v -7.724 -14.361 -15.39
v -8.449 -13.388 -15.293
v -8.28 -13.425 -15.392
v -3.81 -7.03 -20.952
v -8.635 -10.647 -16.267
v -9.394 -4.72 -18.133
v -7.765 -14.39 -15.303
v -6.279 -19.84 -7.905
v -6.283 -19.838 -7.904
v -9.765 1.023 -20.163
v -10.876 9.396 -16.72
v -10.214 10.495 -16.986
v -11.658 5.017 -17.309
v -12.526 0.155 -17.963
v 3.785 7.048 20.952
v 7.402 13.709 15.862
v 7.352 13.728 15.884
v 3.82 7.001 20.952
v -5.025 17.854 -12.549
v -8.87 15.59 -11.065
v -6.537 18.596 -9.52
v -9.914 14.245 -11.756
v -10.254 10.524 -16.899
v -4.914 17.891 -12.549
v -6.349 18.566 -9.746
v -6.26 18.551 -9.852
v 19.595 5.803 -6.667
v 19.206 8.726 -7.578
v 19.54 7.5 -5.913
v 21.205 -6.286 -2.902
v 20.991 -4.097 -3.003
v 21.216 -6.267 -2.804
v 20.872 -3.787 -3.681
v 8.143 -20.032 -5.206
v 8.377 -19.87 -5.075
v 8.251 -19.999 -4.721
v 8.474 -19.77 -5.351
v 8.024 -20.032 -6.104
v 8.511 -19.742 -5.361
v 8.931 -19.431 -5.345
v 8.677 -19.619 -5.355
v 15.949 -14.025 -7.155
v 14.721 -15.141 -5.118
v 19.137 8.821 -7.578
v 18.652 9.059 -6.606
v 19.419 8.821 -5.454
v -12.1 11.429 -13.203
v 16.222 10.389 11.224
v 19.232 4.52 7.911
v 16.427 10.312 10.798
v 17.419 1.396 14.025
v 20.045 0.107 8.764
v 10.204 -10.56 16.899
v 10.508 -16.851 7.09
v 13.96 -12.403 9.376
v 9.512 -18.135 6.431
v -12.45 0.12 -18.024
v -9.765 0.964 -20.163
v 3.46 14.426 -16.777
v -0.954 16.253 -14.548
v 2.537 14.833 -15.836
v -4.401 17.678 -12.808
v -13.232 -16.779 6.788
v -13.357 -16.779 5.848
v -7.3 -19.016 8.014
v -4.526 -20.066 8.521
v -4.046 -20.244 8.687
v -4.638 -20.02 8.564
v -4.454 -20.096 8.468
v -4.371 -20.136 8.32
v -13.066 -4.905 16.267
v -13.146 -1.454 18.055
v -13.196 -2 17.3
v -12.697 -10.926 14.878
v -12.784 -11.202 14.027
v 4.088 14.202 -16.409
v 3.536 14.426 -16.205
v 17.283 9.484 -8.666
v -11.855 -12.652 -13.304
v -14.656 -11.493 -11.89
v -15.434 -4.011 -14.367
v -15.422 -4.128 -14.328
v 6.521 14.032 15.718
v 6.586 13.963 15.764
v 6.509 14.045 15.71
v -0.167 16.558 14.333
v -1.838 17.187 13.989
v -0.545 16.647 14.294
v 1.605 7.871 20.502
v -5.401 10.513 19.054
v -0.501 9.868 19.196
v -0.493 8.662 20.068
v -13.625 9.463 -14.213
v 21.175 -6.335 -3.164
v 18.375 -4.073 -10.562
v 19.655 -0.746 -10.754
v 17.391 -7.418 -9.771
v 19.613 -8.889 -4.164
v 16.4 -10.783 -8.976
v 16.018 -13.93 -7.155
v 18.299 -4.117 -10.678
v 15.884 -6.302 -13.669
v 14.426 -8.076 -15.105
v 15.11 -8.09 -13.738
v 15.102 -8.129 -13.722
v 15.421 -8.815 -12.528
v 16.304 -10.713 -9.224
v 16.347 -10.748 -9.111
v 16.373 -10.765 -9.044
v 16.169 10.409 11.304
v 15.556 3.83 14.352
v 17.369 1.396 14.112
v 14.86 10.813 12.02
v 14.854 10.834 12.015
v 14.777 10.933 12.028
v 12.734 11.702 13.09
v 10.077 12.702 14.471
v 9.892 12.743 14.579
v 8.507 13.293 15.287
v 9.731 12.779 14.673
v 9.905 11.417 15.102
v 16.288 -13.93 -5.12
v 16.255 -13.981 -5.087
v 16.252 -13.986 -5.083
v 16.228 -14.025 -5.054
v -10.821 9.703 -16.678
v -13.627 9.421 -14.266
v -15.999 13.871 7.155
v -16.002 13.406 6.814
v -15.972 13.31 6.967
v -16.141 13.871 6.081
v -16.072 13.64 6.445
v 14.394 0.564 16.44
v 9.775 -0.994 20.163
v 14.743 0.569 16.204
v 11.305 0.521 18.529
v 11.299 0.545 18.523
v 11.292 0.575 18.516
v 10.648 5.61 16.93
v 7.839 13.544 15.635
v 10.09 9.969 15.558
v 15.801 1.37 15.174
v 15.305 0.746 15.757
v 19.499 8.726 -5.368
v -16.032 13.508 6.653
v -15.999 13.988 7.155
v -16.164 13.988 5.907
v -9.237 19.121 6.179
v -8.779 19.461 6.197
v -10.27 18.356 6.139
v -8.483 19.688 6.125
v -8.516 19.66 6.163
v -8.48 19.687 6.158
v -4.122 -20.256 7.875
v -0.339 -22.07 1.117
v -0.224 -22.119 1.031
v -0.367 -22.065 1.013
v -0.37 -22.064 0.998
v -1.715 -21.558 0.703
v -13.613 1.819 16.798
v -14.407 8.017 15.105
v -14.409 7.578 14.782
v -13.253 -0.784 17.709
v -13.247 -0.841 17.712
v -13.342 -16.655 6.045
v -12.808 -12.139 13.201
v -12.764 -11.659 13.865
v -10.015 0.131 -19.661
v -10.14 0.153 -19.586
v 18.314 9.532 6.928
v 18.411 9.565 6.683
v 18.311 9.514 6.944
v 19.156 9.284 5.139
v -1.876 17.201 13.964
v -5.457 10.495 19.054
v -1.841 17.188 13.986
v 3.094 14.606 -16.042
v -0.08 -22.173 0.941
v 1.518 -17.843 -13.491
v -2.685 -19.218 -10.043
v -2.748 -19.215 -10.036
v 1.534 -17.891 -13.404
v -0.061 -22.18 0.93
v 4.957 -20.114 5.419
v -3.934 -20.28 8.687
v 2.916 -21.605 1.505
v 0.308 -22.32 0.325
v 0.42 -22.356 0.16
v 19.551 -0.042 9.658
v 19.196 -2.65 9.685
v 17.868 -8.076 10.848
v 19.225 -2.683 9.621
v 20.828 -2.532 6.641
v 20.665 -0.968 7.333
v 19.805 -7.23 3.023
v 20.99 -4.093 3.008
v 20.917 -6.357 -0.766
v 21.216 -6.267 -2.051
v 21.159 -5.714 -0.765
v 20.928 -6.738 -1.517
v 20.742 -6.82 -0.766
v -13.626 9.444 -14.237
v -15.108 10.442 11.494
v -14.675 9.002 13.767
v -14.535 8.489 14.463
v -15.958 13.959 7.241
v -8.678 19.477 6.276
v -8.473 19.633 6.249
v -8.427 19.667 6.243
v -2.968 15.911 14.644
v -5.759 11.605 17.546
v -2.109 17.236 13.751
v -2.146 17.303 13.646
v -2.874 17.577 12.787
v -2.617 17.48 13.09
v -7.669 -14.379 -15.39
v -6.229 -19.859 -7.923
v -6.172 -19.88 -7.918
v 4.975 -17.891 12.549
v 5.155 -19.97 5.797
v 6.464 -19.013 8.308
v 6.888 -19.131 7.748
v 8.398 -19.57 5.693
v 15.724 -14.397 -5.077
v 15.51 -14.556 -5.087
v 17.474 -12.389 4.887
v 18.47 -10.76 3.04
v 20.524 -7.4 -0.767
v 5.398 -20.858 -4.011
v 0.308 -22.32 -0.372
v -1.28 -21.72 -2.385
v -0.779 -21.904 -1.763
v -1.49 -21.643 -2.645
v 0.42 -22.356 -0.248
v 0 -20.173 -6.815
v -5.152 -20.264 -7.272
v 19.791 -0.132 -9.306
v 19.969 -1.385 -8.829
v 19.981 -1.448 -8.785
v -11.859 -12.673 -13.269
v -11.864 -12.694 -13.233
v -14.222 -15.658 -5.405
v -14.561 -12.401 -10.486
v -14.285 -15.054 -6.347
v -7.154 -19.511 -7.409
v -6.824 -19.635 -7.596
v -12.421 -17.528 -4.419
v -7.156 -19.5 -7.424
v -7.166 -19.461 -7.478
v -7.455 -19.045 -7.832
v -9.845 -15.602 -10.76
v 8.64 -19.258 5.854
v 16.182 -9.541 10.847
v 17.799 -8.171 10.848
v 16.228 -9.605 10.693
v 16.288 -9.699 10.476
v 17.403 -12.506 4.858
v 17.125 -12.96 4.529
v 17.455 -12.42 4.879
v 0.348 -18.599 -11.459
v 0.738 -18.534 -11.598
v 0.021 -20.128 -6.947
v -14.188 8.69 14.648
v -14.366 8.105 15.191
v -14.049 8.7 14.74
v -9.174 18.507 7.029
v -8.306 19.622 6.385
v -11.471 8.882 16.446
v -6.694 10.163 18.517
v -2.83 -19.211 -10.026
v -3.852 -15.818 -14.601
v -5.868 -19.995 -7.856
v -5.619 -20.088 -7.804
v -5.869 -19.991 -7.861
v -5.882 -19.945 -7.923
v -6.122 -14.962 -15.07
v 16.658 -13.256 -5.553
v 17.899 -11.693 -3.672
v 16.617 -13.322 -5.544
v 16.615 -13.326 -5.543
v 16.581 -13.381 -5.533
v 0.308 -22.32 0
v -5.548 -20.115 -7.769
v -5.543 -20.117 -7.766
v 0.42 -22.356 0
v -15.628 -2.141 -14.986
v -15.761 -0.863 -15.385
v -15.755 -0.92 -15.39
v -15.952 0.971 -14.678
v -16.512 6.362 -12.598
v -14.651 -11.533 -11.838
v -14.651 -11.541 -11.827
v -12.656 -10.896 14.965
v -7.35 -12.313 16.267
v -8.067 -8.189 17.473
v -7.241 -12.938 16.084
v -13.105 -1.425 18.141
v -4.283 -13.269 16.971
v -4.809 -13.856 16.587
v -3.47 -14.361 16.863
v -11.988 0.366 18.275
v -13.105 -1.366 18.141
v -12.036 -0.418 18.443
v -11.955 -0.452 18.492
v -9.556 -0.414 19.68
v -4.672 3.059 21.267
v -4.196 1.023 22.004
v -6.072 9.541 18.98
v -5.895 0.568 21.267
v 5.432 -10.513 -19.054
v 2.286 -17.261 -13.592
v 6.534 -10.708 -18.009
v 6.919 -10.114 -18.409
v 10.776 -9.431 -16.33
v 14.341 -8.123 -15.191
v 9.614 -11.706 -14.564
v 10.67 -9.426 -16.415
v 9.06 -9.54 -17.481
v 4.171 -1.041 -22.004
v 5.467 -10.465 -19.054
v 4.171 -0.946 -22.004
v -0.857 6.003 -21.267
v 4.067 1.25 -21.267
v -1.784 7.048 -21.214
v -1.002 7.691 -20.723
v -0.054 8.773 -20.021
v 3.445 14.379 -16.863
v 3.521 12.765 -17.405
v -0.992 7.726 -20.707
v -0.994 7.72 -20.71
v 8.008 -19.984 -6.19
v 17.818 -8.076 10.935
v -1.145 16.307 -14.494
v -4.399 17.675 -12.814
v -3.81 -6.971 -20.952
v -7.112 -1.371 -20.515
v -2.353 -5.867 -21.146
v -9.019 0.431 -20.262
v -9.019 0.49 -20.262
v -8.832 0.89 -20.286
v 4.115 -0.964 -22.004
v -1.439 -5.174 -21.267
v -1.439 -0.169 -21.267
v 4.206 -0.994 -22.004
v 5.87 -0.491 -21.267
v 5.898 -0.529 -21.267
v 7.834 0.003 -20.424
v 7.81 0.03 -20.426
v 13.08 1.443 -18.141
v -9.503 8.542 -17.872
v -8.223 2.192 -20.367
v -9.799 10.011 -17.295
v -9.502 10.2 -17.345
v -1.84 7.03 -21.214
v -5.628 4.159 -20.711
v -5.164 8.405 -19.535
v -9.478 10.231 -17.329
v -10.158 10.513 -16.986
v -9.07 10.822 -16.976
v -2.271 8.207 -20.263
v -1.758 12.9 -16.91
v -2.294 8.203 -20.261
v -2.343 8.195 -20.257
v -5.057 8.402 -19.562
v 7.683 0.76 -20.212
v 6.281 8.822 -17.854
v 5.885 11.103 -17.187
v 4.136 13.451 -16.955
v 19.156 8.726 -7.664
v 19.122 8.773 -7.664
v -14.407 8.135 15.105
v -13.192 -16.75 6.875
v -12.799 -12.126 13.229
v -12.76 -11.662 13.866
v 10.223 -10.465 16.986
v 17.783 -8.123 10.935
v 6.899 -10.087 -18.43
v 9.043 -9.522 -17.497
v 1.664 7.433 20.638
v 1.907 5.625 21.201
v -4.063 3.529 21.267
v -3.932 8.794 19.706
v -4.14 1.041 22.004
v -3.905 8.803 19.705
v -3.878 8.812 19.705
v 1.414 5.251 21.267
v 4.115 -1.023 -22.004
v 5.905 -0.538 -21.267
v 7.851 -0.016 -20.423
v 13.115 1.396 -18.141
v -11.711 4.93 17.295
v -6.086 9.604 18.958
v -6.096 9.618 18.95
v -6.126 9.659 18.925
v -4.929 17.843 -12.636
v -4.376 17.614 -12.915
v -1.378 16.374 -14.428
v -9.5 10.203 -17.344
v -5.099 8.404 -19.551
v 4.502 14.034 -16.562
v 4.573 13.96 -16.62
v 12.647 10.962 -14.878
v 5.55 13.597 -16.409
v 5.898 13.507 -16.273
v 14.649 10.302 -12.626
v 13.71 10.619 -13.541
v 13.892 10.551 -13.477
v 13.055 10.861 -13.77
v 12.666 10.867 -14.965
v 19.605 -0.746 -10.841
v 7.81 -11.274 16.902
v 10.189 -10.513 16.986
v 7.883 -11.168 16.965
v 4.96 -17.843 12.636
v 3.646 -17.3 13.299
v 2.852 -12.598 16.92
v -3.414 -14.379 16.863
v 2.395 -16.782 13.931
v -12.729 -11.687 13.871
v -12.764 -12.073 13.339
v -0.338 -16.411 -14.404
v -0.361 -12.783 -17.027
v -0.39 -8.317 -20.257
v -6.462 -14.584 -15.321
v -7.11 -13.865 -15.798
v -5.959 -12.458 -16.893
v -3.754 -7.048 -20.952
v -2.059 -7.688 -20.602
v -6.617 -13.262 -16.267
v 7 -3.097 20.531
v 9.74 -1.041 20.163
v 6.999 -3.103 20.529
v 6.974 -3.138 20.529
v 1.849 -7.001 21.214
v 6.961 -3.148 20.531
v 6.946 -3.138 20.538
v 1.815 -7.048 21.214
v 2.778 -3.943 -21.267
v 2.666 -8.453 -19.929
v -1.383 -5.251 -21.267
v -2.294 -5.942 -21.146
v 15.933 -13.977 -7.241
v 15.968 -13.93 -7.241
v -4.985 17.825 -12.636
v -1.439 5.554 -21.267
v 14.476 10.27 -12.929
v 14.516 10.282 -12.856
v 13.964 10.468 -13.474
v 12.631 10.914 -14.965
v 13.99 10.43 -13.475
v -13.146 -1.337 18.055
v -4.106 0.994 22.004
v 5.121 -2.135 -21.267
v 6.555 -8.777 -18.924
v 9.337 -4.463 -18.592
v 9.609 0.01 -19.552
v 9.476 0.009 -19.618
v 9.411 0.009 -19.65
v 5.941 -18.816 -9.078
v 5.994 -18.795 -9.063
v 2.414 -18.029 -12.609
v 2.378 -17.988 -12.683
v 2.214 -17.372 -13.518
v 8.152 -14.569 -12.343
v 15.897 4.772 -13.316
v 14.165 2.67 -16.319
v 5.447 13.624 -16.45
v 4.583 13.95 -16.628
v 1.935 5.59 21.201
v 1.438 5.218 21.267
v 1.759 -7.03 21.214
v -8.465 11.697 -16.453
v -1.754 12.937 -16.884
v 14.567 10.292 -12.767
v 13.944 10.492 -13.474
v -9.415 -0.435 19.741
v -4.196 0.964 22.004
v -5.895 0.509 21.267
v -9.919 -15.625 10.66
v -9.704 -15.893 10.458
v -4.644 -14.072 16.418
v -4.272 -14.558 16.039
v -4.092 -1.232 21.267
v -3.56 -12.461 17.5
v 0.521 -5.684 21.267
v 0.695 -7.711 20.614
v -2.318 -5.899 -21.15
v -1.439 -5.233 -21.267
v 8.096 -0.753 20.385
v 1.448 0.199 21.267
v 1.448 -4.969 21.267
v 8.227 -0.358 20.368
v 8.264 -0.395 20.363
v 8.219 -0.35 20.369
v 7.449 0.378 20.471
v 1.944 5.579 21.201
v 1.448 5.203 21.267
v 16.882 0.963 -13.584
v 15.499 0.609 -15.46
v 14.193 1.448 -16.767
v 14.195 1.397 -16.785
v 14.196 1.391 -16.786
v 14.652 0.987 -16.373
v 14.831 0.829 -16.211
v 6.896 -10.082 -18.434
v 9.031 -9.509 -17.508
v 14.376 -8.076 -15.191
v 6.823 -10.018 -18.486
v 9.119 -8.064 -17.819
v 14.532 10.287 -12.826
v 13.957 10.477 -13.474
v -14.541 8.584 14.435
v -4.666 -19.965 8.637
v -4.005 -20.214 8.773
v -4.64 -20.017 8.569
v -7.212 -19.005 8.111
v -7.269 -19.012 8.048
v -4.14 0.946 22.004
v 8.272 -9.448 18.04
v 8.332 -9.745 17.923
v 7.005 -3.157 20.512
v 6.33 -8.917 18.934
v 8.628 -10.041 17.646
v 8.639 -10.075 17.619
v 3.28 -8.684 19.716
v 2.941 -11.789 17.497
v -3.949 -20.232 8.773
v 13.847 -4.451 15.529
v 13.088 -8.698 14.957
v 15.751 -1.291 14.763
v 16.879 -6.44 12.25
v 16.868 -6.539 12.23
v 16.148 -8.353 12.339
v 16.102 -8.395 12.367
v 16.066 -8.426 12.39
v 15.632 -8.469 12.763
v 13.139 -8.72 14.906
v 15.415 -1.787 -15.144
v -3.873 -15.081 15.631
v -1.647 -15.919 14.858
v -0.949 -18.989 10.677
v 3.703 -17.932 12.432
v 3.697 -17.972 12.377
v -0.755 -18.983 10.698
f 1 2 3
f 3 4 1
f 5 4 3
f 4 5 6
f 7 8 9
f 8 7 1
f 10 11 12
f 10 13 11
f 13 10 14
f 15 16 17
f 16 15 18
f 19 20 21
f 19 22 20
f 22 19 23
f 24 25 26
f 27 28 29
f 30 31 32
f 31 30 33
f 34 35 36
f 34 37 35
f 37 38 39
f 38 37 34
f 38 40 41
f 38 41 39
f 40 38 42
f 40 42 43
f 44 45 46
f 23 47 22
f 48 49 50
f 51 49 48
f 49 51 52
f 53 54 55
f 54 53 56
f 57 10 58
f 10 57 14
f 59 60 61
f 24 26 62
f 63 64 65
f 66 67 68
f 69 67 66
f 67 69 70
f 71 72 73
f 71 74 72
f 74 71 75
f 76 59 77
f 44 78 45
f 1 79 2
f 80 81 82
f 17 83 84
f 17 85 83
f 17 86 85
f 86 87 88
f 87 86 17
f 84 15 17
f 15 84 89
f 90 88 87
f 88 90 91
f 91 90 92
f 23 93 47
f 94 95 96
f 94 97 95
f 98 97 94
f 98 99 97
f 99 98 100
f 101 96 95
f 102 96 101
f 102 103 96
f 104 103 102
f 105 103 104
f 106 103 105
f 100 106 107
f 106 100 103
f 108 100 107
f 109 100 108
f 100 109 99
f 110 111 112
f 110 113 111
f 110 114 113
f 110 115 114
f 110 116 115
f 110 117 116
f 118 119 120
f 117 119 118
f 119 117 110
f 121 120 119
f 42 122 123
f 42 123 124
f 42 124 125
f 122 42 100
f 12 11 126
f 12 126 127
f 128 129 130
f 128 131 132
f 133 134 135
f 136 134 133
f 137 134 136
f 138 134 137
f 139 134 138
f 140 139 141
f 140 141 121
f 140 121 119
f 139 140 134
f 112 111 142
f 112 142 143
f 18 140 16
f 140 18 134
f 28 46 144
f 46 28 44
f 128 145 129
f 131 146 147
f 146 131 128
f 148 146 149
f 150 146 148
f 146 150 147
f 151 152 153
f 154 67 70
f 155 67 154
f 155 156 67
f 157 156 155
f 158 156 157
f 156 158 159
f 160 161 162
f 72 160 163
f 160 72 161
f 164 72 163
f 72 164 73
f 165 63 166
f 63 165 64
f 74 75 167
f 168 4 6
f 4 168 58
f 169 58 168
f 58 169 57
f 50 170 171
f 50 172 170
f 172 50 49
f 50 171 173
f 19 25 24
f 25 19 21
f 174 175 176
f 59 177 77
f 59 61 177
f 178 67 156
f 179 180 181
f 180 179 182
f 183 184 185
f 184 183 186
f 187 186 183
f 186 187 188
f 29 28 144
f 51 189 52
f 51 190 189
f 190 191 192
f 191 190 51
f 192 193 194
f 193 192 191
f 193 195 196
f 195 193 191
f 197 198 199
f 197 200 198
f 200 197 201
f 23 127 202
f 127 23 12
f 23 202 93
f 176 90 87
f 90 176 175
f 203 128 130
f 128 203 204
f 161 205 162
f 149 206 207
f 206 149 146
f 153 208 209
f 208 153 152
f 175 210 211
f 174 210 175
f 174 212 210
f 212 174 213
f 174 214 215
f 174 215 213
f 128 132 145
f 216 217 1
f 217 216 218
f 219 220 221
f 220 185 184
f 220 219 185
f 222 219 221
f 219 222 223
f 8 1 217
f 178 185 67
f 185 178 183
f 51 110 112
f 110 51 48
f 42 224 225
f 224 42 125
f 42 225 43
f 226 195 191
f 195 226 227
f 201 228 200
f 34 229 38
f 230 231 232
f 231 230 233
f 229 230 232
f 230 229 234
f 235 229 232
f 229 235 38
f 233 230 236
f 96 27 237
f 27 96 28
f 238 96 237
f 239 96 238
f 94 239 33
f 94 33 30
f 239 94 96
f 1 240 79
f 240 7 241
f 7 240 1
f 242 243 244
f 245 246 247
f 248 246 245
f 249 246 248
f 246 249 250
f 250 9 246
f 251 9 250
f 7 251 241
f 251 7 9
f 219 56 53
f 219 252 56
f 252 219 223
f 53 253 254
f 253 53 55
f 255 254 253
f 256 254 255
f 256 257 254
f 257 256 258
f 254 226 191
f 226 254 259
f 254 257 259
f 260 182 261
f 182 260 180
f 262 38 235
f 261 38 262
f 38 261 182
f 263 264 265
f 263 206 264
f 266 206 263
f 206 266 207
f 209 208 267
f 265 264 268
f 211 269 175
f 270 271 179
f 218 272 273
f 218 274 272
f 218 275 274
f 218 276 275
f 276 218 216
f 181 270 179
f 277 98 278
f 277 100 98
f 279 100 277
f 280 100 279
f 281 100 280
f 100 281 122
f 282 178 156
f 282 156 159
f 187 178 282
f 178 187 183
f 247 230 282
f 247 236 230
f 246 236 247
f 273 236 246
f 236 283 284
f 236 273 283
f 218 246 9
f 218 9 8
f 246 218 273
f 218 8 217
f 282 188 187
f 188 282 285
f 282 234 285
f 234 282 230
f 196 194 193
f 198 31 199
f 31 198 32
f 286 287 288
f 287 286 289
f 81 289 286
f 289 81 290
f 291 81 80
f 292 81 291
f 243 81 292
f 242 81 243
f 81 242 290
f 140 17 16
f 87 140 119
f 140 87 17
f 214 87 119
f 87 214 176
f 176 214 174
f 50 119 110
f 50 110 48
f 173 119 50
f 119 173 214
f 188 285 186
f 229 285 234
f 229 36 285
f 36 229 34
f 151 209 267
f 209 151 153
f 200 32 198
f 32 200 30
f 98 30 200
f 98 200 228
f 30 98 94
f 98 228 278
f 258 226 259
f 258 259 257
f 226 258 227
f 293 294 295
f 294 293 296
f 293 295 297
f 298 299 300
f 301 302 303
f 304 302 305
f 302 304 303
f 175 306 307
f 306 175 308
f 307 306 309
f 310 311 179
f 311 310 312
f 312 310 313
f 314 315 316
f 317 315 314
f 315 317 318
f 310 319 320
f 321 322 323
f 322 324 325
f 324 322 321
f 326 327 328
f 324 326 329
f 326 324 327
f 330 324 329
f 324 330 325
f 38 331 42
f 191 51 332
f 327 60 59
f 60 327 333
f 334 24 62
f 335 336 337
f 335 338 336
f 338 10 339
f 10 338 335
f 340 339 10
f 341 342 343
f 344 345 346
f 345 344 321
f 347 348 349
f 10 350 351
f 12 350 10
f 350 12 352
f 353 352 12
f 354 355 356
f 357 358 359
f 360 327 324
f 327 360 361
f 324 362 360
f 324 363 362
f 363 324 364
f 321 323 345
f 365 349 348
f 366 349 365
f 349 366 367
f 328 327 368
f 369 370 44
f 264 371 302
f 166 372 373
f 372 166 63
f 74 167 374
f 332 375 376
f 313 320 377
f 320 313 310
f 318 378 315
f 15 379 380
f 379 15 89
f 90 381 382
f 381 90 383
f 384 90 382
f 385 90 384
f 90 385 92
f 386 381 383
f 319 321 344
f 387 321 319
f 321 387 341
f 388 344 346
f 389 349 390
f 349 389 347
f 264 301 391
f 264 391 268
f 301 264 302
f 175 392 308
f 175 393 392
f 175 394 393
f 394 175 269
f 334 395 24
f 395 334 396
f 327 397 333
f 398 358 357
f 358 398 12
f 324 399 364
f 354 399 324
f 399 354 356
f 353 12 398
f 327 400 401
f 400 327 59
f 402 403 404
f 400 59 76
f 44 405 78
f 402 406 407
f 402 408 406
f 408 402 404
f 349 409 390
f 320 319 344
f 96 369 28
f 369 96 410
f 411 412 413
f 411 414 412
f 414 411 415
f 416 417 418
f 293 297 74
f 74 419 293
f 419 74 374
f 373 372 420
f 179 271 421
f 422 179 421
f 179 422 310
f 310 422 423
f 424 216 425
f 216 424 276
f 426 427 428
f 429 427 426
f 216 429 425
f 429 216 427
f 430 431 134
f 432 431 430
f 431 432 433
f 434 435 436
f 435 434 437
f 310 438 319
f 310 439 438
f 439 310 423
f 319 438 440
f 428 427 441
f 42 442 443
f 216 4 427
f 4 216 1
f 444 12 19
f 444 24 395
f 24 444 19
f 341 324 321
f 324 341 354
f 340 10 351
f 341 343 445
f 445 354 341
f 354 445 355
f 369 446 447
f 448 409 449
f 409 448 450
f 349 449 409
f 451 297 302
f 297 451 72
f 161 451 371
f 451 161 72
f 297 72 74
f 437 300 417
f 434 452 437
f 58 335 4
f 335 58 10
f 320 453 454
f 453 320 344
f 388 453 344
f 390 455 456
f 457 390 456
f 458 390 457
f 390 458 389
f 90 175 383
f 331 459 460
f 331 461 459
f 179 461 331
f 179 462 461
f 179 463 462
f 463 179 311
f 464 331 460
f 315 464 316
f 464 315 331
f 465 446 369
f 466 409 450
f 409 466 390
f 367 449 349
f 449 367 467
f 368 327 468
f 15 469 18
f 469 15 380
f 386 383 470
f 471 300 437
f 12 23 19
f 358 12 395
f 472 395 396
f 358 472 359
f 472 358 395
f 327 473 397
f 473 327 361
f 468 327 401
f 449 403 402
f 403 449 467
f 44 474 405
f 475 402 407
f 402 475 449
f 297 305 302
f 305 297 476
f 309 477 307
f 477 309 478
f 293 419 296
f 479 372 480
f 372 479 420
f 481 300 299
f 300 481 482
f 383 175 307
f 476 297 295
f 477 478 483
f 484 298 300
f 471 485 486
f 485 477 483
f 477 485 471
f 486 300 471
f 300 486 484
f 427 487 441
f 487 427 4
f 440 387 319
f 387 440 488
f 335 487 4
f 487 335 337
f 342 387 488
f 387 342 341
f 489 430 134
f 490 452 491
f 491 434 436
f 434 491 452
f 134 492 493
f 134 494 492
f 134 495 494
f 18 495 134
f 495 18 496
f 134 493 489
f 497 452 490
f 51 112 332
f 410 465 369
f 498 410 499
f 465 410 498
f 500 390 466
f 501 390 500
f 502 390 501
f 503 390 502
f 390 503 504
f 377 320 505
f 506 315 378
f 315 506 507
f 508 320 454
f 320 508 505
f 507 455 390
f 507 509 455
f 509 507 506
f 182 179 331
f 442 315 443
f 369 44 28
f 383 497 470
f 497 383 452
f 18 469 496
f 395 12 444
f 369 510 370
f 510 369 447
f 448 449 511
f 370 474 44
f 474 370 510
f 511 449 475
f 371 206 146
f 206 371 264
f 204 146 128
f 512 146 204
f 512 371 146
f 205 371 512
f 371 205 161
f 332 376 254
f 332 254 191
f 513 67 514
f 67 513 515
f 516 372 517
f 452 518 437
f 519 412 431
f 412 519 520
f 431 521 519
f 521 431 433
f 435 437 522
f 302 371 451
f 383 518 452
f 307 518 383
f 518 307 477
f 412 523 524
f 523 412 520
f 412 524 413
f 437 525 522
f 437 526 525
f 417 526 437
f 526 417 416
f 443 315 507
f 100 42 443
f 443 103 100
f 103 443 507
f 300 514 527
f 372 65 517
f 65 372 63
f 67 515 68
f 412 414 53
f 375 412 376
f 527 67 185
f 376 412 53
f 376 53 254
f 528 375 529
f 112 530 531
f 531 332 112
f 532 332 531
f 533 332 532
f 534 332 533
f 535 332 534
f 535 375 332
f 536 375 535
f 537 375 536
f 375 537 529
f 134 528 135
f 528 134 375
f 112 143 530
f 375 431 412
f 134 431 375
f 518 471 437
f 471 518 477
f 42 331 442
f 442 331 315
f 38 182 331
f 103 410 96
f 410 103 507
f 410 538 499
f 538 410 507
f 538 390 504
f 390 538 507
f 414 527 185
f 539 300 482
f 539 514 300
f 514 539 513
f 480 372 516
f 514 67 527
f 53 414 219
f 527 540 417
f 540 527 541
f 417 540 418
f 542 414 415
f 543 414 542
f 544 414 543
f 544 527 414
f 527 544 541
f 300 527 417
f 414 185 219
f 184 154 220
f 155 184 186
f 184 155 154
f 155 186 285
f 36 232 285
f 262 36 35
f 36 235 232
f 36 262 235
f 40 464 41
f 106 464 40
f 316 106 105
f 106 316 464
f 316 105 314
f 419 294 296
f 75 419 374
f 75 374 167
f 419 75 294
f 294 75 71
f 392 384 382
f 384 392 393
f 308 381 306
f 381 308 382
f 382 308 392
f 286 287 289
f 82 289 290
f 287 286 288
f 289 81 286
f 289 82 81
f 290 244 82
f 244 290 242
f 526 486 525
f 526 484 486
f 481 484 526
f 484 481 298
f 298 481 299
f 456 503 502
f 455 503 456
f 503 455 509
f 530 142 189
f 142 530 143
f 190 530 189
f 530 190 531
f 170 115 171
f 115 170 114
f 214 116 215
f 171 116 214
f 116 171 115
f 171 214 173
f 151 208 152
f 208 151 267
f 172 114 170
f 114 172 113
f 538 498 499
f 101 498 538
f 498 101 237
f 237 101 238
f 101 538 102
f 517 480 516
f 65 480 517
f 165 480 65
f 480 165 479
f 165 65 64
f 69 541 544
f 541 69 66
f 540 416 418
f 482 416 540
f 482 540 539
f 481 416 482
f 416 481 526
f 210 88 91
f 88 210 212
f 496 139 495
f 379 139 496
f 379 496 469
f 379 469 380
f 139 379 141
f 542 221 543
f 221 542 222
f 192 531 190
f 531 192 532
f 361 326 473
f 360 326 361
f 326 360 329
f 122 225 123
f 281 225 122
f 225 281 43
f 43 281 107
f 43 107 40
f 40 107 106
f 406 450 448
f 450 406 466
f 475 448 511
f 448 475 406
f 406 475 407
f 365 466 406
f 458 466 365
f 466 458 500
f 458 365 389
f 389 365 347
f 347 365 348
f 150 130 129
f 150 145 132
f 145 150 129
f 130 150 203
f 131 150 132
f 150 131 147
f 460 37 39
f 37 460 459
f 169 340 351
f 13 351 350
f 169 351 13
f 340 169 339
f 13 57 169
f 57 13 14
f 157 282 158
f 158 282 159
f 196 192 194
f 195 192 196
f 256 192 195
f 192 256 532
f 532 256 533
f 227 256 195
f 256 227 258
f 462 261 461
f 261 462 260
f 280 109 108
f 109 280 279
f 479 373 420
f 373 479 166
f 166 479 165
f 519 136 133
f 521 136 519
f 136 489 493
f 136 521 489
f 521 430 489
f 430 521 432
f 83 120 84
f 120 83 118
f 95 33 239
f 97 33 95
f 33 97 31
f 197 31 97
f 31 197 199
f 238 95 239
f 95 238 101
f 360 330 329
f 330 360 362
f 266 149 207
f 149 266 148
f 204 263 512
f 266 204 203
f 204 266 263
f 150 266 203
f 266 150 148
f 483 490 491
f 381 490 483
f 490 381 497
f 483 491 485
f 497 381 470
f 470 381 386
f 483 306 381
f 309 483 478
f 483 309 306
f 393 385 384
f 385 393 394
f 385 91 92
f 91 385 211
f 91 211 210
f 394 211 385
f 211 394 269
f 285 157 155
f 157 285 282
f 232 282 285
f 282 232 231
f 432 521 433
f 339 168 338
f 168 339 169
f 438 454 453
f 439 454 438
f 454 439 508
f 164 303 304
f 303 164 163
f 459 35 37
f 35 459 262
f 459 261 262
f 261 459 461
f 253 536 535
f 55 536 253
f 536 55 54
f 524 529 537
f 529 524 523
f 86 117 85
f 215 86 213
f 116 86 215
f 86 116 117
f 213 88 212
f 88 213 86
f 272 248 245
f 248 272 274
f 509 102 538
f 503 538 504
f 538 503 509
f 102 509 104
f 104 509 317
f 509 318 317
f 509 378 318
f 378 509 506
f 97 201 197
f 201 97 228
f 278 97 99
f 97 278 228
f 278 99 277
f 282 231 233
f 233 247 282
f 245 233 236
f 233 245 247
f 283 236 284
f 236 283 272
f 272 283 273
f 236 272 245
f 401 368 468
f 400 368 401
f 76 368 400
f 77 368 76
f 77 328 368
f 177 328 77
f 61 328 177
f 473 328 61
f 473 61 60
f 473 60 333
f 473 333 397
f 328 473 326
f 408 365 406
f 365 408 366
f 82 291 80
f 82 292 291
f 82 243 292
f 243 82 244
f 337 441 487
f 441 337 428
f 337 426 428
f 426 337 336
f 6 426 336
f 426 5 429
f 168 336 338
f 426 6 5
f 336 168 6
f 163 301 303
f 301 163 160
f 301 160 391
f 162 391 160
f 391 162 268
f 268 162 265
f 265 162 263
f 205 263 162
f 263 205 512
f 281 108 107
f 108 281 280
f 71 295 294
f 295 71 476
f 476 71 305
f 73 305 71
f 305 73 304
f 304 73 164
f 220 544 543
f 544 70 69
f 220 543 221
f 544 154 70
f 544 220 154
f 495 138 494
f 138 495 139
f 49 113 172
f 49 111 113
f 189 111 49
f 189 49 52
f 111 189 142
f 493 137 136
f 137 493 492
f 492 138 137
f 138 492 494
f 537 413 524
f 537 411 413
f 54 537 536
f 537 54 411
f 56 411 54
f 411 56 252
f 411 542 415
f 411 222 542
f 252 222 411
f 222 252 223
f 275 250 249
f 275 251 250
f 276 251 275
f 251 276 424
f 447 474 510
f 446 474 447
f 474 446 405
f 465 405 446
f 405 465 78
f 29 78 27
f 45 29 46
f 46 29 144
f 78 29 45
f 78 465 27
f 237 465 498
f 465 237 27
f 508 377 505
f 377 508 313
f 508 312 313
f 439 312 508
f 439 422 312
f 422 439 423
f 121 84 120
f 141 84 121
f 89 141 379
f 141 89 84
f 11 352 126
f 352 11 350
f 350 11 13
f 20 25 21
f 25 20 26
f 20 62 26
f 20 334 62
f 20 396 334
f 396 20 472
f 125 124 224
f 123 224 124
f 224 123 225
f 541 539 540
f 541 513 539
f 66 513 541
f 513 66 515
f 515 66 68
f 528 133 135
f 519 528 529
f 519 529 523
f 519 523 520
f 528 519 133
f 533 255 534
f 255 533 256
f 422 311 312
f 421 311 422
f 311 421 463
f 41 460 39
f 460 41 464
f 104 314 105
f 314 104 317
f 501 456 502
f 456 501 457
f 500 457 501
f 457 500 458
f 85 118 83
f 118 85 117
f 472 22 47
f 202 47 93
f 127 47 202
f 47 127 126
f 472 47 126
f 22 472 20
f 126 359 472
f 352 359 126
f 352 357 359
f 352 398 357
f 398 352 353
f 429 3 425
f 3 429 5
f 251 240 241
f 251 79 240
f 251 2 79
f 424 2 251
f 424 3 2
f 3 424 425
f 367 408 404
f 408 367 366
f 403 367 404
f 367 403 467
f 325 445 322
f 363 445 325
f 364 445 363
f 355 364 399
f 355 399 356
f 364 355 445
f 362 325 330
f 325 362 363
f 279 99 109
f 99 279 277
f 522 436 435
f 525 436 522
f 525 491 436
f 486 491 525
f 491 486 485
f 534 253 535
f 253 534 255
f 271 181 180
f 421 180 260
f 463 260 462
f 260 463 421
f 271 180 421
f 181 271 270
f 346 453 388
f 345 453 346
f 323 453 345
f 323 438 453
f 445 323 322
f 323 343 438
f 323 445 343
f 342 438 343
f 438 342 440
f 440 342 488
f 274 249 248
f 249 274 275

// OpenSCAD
// Auto-generated OpenSCAD file

    inner_points = 10*[[-0.9279033340044873, 1.9881287339373244, 0.5], [1.6599232743581653, -1.3655894049421804, 0.5000000000000002], [-1.719608792154131, 1.3772257403810124, 0.49999999999999983], [0.8682178162085216, -1.9764923984984926, 0.5], [-0.9279033340044872, 1.9881287339373246, -0.5], [1.6599232743581653, -1.3655894049421804, -0.49999999999999983], [-1.719608792154131, 1.3772257403810124, -0.5000000000000002], [0.8682178162085217, -1.9764923984984923, -0.5], [0.06055847339868262, 0.7071223935723936, 2.118033988749895], [0.6714614669549944, -0.08458306457724996, 2.118033988749895], [-0.7311469847509608, 0.0962194000160817, 2.118033988749895], [-0.1202439911946491, -0.6954860581335618, 2.118033988749895], [0.060558473398683345, 0.7071223935723938, -2.118033988749895], [0.6714614669549952, -0.08458306457724962, -2.118033988749895], [-0.7311469847509601, 0.09621940001608204, -2.118033988749895], [-0.12024399119464838, -0.6954860581335616, -2.118033988749895], [1.9524678073199255, 0.9038787428259204, 0.5000000000000004], [-1.4012503315595792, -1.6839478655367321, 0.49999999999999967], [1.9524678073199255, 0.9038787428259204, -0.4999999999999996], [-1.4012503315595792, -1.6839478655367321, -0.5000000000000003], [2.1116470376172014, -0.6267080601329519, 3.1851338429106984e-16], [0.038935239102626924, -2.226072861092434, -1.4591074810930197e-16], [-0.8295251593777242, 1.042174066976703, 1.8090169943749475], [0.7698396415817579, -1.0305377315378712, 1.8090169943749475], [-0.8295251593777235, 1.0421740669767032, -1.8090169943749475], [0.7698396415817585, -1.030537731537871, -1.8090169943749475], [1.402365869434126, 1.1109520649773128, 1.3090169943749477], [-1.462051387230092, -1.099315729538481, 1.3090169943749472], [1.4023658694341263, 1.110952064977313, -1.3090169943749472], [-1.4620513872300915, -1.0993157295384808, -1.3090169943749477], [-0.3778013961186881, 1.7810554117859319, 1.3090169943749475], [1.5991222186876526, -0.7809572689439295, 1.3090169943749477], [-1.6588077364836187, 0.7925936043827613, 1.3090169943749472], [0.318115878322722, -1.7694190763471, 1.3090169943749475], [-0.37780139611868774, 1.781055411785932, -1.3090169943749475], [1.599122218687653, -0.7809572689439293, -1.3090169943749472], [-1.6588077364836182, 0.7925936043827615, -1.3090169943749477], [0.31811587832272237, -1.7694190763470998, -1.3090169943749475], [0.512282236657719, 1.4460037383816222, 1.6180339887498951], [1.5007440440608895, 0.1649973980166917, 1.6180339887498951], [-1.5604295618568556, -0.15336106257785984, 1.6180339887498947], [-0.571967754453685, -1.4343674029427904, 1.6180339887498947], [0.5122822366577193, 1.4460037383816224, -1.6180339887498947], [1.50074404406089, 0.16499739801669192, -1.6180339887498947], [-1.560429561856855, -0.1533610625778596, -1.6180339887498951], [-0.5719677544536846, -1.4343674029427902, -1.6180339887498951], [2.0508459819466887, -0.04207592413470093, 0.8090169943749478], [-0.5111666987831726, -2.0189995389410416, 0.8090169943749472], [2.0508459819466887, -0.04207592413470082, -0.8090169943749471], [-0.5111666987831723, -2.018999538941041, -0.8090169943749477]];

    outer_points = 10*[[-0.799273279028224, 1.9936569571401734, 0.6103786858810235], [1.7232737678332082, -1.3929503128430878, 0.2758349588940299], [-1.5918035039950686, 1.3929503128430878, 0.7154851557643633], [0.9307435428663637, -1.9936569571401734, 0.38094142877736964], [-0.9307435428663637, 1.9936569571401734, -0.38094142877736964], [1.5918035039950686, -1.3929503128430878, -0.7154851557643633], [-1.7232737678332082, 1.3929503128430878, -0.2758349588940299], [0.799273279028224, -1.9936569571401734, -0.6103786858810235], [0.37697731005219565, 0.7000880865540592, 2.0865839921437805], [0.9724698895528412, -0.09938144225697354, 2.0076089311287193], [-0.41555291491464885, 0.09938144225697354, 2.19169046202712], [0.1799396645859967, -0.7000880865540592, 2.112715401012059], [-0.1799396645859967, 0.7000880865540592, -2.112715401012059], [0.41555291491464885, -0.09938144225697354, -2.19169046202712], [-0.9724698895528412, 0.09938144225697354, -2.0076089311287193], [-0.37697731005219565, -0.7000880865540592, -2.0865839921437805], [2.04208737526077, 0.8725823254836041, 0.23355345117123516], [-1.3151245319219846, -1.672051854294637, 0.6787916024720966], [1.9106171114226302, 0.8725823254836041, -0.757766663487158], [-1.4465947957601242, -1.672051854294637, -0.31252851218629657], [2.114691729378242, -0.6599187580852582, -0.28045338280409476], [0.03982066330344263, -2.2325891701229215, -0.005281072211994187], [-0.5416779650523665, 1.0465191996985734, 1.8966946312832687], [1.0173418481286722, -1.0465191996985734, 1.689935237282241], [-1.0173418481286722, 1.0465191996985734, -1.689935237282241], [0.5416779650523665, -1.0465191996985734, -1.8966946312832687], [1.605797455139905, 1.0866885281673746, 1.1075154867158379], [-1.2616038359017392, -1.0866885281673746, 1.4877942671912783], [1.2616038359017392, 1.0866885281673746, -1.4877942671912783], [-1.605797455139905, -1.0866885281673746, -1.1075154867158379], [-0.1502600035073329, 1.7795507544564033, 1.3404062895851439], [1.7767944638534539, -0.8075869867158254, 1.0848376236132116], [-1.432600844615288, 0.8075869867158254, 1.5104721302939046], [0.49445362274549887, -1.7795507544564033, 1.2549034643219723], [-0.49445362274549887, 1.7795507544564033, -1.2549034643219723], [1.432600844615288, -0.8075869867158254, -1.5104721302939046], [-1.7767944638534539, 0.8075869867158254, -1.0848376236132116], [0.1502600035073329, -1.7795507544564033, -1.3404062895851439], [0.7683952715972292, 1.433119641311889, 1.530295650445656], [1.7319225052776228, 0.1395507707257745, 1.4025113174596897], [-1.3064757944775702, -0.1395507707257745, 1.8054679610377566], [-0.3429485607971766, -1.433119641311889, 1.6776836280517904], [0.3429485607971766, 1.433119641311889, -1.6776836280517904], [1.3064757944775702, 0.1395507707257745, -1.8054679610377566], [-1.7319225052776228, -0.1395507707257745, -1.4025113174596897], [-0.7683952715972292, -1.433119641311889, -1.530295650445656], [2.1682124253984876, -0.07455543195799563, 0.528549281915087], [-0.3964692568174225, -2.018482967439151, 0.8686809633326087], [1.9554890699984613, -0.07455543195799563, -1.0754403573336362], [-0.6091926122174488, -2.018482967439151, -0.7353086759161145]];

    // Convex hull for inner set (I)
    module inner_hull() {
        hull() {
            for (p = inner_points) {
                translate(p) sphere(r=0.1);
            }
        }
    }

    // Convex hull for outer set (O) minus inner hull (O \ I)
    module outer_minus_inner() {
        difference() {
            hull() {
                for (p = outer_points) {
                    translate(p) sphere(r=0.1);
                }
            }
            inner_hull(); // Subtract inner hull
        }
    }

    // Convex hull for outer set (O) minus all translated inner hulls
    module outer_minus_AllTranslationInner() {
        difference() {
            hull() {
                for (p = outer_points) {
                    translate(p) sphere(r=0.1);
                }
            }
            hull() {
                translate([0,0,50]) inner_hull();
                translate([0,0,-50]) inner_hull();
            }; // Subtract translated inner hulls
        }
    }

    // Difference between outer_minus_inner and outer_minus_AllTranslationInner
    module outer_minus_inner_diff() {
        difference() {
            // Outer minus inner
            difference() {
                hull() {
                    for (p = outer_points) {
                        translate(p) sphere(r=0.1);
                    }
                }
                inner_hull();
            }

            // Subtract Outer minus AllTranslationInner
            difference() {
                hull() {
                    for (p = outer_points) {
                        translate(p) sphere(r=0.1);
                    }
                }
                hull() {
                    translate([0,0,50]) inner_hull();
                    translate([0,0,-50]) inner_hull();
                };
            }
        }
    }

    // Rendering all with colors applied
    color([1, 1, 0, 1]) outer_minus_inner_diff(); // Opaque yellow
    
